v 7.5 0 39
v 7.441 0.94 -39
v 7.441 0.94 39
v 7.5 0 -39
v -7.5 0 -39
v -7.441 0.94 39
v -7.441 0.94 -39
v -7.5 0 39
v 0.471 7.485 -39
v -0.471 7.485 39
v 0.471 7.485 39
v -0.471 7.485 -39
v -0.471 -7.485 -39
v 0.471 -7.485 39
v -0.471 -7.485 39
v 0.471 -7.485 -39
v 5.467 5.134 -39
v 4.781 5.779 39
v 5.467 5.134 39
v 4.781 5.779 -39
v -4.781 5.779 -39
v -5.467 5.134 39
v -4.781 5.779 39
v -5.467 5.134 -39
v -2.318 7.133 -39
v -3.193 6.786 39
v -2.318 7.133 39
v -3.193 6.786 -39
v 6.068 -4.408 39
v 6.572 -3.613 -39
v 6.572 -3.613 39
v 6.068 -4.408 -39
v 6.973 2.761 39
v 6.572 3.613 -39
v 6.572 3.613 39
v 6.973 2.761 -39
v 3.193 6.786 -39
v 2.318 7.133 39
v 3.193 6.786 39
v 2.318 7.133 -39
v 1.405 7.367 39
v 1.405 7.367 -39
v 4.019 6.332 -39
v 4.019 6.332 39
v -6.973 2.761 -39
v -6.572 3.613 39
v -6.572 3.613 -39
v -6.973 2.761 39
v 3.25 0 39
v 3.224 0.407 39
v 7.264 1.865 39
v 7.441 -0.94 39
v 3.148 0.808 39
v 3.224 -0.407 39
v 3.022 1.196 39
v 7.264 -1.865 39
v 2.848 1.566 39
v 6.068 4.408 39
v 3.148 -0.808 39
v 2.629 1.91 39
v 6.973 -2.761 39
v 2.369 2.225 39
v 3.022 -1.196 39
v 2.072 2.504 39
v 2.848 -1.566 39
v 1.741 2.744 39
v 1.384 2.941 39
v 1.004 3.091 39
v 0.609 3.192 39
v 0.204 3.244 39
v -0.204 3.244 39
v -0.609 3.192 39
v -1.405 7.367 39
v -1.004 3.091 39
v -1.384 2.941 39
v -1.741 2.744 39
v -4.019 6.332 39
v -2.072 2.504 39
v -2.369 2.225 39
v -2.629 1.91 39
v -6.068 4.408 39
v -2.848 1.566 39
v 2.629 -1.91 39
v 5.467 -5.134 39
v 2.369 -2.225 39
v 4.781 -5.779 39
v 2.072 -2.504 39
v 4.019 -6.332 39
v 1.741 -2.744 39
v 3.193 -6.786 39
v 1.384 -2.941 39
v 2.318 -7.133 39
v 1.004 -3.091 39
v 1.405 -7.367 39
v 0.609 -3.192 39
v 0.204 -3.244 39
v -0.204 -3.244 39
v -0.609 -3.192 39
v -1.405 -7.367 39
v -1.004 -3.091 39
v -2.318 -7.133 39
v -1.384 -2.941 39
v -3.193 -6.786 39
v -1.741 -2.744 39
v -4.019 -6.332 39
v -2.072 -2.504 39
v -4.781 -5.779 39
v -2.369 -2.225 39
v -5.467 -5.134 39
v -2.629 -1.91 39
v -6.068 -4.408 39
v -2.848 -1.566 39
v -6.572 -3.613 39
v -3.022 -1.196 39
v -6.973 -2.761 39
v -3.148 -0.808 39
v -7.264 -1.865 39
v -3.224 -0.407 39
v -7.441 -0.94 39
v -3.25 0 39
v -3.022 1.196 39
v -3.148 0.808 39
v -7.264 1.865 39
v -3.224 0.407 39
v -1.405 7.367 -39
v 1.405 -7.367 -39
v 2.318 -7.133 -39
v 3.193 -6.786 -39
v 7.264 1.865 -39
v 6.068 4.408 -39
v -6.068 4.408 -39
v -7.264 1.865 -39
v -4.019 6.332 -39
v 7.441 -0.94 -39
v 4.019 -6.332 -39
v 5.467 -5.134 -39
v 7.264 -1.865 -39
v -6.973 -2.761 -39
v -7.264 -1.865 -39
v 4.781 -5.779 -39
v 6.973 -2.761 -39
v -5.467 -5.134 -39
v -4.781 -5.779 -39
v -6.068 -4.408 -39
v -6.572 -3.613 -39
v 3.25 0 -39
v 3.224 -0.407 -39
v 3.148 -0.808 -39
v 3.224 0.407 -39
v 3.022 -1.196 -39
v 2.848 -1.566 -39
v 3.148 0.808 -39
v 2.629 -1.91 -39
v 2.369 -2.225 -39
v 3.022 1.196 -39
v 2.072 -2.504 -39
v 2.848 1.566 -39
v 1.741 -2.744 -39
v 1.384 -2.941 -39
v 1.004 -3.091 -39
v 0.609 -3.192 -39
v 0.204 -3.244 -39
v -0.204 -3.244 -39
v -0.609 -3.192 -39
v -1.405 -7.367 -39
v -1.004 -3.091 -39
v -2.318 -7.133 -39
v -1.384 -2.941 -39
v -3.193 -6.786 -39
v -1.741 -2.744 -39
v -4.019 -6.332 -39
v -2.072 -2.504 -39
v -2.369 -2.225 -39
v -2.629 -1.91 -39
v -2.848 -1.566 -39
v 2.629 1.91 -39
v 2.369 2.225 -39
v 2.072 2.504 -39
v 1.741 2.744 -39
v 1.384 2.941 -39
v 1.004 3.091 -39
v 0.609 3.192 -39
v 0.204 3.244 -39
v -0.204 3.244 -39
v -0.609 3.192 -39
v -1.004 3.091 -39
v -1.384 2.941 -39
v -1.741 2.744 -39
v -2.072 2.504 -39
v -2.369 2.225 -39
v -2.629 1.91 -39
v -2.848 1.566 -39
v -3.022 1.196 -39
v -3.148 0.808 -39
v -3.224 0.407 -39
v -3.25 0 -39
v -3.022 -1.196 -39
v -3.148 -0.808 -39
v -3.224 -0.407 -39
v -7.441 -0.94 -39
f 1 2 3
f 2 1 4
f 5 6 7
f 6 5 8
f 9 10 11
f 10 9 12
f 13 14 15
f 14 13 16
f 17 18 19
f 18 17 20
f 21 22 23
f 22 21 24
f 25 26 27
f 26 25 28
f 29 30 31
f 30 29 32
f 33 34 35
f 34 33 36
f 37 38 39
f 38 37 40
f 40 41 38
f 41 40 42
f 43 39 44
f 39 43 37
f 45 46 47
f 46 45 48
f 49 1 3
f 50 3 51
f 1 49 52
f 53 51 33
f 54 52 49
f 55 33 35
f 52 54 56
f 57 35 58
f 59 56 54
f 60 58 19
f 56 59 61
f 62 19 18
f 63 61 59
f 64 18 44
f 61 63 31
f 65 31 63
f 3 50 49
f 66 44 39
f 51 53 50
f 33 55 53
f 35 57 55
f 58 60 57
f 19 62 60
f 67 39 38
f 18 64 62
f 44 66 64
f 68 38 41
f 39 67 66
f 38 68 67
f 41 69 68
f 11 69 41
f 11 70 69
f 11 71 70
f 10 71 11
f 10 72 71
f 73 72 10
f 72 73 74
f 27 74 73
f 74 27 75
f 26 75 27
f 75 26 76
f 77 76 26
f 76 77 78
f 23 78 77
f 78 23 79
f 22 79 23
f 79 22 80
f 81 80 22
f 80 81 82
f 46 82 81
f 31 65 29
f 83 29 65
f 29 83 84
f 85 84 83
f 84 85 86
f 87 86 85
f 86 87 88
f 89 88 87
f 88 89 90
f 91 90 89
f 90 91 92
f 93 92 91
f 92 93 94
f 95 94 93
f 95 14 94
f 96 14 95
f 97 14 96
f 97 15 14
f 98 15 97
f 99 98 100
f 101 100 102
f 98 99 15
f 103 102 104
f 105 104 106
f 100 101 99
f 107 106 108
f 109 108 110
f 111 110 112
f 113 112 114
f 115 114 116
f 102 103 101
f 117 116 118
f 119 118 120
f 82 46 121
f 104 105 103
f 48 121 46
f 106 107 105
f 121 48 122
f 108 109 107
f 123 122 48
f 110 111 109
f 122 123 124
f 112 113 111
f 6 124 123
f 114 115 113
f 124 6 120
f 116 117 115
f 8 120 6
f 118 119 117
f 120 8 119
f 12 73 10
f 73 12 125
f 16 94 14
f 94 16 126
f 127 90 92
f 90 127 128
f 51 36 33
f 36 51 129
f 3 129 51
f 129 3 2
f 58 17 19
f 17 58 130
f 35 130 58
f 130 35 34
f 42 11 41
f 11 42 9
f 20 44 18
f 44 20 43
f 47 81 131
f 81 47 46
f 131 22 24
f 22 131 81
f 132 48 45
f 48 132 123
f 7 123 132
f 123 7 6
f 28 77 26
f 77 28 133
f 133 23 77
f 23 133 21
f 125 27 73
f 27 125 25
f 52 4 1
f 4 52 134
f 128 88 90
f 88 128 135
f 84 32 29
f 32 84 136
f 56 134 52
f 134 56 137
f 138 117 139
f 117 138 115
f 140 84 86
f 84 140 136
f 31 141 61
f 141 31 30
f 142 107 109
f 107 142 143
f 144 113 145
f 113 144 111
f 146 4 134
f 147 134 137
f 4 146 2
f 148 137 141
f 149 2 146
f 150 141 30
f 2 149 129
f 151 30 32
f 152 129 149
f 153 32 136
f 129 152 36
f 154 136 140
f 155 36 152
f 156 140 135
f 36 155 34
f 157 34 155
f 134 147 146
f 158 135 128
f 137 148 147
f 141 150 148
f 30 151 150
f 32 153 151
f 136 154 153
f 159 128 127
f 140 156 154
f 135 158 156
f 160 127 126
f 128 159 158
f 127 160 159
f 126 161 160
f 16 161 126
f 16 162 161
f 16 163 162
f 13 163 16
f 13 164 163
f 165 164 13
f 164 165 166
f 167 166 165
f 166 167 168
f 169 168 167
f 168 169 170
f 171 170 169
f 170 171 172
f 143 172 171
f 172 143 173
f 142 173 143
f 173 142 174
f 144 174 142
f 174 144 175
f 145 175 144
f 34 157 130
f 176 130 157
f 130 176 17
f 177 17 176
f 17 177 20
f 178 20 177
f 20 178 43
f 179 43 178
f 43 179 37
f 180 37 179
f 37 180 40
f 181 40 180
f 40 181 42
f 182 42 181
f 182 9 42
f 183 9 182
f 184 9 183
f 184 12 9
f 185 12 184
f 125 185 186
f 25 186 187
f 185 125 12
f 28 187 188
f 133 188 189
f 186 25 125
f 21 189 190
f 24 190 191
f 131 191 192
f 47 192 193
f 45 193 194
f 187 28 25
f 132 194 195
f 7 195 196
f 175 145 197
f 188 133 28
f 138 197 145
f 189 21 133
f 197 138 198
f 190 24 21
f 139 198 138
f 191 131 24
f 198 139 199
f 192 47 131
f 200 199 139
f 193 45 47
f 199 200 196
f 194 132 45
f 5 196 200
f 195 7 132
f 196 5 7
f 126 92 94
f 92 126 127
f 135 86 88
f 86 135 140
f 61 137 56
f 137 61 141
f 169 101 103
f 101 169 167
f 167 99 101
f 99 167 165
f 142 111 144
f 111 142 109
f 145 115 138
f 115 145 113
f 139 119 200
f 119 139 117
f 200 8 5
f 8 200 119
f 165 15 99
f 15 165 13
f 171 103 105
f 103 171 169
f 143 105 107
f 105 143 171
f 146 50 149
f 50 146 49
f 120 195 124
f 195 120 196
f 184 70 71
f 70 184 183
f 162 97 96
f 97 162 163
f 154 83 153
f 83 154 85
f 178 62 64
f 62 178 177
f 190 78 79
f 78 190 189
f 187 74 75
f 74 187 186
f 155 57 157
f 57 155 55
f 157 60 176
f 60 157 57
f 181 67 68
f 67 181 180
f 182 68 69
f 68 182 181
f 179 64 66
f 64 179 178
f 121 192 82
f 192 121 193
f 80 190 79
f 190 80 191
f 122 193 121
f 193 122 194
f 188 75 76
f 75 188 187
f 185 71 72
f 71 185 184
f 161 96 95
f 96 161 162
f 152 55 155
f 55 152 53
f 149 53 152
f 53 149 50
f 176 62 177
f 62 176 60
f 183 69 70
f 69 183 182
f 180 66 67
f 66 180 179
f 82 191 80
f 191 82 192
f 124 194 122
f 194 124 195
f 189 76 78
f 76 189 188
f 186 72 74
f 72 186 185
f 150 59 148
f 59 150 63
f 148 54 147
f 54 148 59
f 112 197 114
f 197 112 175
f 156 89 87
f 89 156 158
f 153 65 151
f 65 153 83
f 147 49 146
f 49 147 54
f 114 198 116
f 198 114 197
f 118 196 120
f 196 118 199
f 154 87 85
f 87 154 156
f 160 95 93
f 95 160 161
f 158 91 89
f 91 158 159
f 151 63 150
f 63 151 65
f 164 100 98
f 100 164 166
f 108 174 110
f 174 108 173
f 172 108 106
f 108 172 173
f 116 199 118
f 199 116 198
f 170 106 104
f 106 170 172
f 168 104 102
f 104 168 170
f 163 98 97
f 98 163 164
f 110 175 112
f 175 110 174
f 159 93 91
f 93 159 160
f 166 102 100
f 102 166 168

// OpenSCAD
$fn = 50;


difference() {
	union() {
		translate(v = [0, 0, -39.0000000000]) {
			cylinder(h = 78, r = 7.5000000000);
		}
	}
	union() {
		translate(v = [0, 0, -100.0000000000]) {
			cylinder(h = 200, r = 3.2500000000);
		}
	}
}
